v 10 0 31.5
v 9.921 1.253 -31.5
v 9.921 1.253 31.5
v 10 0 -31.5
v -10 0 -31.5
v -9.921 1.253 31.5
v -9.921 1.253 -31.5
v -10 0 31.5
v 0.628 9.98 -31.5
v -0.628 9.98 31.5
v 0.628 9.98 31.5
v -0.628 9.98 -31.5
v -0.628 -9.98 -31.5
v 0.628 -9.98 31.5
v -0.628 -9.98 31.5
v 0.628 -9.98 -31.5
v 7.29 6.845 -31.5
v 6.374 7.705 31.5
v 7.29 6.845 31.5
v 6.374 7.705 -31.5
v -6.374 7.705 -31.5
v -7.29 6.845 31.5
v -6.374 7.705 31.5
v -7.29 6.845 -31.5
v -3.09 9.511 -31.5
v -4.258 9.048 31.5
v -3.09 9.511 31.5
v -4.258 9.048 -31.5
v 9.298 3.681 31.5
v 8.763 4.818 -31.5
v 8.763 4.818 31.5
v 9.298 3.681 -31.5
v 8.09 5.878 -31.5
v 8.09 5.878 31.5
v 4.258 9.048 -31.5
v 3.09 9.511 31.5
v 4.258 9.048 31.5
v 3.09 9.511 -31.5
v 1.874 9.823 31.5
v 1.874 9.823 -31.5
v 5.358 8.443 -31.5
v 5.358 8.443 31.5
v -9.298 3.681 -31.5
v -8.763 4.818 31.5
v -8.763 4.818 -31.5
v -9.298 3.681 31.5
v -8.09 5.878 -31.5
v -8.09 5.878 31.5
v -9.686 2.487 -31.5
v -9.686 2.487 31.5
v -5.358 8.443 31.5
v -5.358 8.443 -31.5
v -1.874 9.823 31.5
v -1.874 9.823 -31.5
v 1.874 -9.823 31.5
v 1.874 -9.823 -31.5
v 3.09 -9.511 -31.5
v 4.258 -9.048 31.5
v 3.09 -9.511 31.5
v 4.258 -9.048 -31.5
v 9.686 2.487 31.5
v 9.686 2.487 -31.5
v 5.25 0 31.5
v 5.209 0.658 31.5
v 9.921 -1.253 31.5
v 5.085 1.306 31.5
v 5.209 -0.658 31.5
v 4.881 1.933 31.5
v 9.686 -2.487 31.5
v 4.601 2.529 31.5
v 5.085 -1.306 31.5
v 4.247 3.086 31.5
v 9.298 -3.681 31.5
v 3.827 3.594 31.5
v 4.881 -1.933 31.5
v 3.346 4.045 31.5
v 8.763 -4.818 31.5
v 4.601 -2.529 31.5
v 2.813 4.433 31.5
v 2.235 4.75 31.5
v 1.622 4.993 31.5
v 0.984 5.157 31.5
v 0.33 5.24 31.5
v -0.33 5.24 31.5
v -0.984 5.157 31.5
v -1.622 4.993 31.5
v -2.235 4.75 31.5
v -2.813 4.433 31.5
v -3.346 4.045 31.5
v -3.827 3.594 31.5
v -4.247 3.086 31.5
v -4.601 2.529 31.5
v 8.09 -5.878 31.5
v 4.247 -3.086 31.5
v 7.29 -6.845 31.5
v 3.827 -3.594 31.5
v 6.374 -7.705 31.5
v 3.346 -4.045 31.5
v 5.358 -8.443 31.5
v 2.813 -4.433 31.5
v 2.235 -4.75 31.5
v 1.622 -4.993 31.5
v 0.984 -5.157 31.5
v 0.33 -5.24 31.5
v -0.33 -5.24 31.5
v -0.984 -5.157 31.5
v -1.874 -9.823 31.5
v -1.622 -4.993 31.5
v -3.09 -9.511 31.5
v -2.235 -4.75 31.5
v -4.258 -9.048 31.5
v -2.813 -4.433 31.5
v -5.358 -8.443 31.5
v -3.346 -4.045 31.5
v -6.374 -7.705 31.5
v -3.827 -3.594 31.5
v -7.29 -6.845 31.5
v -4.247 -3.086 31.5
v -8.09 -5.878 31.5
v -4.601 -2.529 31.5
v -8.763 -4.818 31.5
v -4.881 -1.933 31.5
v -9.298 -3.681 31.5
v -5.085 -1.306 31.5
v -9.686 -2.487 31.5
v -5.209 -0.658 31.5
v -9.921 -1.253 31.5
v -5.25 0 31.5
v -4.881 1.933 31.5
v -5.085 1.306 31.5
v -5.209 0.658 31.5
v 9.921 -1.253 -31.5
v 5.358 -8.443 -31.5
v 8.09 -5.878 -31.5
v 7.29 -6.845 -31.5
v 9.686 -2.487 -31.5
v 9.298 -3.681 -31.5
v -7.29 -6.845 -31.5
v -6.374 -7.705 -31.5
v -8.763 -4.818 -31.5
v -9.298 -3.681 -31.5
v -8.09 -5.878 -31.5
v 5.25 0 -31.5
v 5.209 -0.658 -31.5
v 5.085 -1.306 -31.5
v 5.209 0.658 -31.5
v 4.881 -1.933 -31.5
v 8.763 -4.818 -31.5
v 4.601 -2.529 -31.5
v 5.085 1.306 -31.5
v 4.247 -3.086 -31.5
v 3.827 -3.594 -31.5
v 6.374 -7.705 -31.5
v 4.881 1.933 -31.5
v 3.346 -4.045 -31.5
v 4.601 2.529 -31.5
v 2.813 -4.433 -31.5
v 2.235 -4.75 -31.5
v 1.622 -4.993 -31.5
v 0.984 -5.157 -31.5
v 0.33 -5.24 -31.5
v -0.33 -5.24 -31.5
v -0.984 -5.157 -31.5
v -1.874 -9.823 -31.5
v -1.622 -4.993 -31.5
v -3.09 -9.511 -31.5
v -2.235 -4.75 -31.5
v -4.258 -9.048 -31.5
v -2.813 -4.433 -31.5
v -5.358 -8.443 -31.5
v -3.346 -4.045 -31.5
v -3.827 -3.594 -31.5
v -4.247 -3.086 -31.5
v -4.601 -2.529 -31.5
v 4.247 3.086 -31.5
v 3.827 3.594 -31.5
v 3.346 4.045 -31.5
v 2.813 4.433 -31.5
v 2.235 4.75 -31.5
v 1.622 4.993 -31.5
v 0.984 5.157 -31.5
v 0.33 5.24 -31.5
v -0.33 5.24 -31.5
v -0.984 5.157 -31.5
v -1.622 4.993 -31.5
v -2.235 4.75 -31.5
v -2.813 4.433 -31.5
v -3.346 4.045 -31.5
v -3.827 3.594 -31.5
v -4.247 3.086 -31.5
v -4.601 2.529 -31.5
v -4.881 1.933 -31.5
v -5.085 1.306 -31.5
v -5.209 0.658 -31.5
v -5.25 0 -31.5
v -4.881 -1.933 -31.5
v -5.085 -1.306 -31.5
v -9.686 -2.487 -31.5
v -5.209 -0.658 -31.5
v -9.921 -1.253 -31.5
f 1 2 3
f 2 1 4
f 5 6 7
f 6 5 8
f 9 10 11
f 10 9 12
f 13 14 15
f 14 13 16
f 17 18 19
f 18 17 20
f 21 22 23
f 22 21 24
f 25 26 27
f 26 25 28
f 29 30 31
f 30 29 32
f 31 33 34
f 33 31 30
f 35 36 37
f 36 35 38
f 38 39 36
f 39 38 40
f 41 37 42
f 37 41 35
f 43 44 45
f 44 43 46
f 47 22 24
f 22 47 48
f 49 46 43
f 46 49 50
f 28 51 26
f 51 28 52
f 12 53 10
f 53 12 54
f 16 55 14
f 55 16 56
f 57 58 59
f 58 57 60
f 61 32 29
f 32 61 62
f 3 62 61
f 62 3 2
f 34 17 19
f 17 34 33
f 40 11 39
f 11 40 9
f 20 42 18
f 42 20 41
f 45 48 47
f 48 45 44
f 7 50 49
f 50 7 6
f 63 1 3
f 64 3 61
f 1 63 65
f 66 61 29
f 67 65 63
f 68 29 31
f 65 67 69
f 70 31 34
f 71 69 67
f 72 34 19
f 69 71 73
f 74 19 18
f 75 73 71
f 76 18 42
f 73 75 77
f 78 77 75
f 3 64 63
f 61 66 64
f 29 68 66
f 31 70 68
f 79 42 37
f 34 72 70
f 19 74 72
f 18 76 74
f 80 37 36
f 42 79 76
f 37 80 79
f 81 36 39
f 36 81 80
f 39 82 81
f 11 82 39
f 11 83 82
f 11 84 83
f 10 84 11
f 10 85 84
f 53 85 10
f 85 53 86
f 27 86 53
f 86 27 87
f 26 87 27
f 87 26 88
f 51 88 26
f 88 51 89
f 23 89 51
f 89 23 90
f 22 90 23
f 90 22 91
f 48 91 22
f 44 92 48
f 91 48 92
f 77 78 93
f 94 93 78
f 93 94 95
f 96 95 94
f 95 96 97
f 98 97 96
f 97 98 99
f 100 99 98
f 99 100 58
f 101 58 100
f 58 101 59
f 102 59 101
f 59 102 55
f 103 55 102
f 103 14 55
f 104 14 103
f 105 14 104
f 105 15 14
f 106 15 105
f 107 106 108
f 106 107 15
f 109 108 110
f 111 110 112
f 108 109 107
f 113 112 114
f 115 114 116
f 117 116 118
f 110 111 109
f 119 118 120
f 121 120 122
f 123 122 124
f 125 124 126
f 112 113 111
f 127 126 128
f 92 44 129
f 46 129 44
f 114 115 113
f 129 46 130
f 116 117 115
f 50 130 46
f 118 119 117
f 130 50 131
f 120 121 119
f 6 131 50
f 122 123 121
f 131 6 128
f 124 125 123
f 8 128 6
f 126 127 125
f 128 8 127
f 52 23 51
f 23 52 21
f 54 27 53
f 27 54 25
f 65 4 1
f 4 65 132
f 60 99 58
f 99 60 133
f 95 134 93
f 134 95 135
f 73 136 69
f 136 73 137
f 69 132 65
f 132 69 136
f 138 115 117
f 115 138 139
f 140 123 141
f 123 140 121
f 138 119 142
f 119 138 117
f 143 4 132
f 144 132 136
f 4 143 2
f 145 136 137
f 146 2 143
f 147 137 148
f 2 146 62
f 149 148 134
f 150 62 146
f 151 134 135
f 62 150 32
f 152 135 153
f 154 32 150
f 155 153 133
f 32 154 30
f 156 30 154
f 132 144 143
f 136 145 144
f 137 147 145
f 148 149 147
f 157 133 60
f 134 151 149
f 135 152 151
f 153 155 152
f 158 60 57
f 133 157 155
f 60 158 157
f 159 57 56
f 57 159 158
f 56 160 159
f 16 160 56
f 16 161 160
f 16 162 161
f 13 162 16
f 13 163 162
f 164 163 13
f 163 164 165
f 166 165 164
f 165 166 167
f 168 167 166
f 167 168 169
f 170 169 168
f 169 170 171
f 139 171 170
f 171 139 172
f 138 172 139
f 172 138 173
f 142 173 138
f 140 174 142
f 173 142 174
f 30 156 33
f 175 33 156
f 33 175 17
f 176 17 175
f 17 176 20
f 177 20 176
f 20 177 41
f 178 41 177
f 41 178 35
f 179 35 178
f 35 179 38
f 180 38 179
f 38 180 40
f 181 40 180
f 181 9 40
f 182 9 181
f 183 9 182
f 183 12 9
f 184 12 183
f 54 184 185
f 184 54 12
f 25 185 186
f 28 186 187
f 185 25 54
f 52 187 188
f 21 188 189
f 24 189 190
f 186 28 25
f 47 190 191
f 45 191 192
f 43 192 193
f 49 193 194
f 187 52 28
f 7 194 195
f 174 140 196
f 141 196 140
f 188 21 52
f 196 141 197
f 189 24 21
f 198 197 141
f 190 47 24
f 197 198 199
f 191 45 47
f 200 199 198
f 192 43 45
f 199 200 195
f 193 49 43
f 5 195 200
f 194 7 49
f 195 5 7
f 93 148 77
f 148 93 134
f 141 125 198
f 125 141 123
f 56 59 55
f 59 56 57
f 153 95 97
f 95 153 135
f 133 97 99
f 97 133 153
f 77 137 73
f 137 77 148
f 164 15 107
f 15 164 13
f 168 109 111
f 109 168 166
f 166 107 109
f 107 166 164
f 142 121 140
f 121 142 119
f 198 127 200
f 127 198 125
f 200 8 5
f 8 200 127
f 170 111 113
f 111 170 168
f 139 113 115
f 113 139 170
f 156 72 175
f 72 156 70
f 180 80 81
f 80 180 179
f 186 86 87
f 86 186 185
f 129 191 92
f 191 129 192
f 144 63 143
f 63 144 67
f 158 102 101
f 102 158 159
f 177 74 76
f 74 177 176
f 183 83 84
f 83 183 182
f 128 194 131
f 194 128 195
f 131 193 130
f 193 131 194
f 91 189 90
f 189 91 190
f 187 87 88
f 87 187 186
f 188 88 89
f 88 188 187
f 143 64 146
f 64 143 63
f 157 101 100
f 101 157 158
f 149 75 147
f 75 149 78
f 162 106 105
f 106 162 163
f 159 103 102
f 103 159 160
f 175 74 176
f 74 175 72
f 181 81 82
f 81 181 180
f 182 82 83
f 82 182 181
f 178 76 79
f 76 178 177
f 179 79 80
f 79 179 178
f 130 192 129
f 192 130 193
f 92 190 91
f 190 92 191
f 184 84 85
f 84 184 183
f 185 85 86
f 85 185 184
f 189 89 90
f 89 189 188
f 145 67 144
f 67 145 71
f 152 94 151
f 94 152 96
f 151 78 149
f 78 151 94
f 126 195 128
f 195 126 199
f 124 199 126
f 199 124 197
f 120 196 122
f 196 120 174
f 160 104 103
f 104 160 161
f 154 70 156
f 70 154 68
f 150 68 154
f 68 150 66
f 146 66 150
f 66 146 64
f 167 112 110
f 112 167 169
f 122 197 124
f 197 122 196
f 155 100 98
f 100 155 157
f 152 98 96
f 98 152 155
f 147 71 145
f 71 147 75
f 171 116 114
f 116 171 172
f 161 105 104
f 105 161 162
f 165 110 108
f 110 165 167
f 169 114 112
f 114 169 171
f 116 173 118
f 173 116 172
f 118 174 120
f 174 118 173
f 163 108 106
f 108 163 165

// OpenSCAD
$fn = 50;


difference() {
	union() {
		translate(v = [0, 0, -31.5000000000]) {
			cylinder(h = 63, r = 10.0000000000);
		}
	}
	union() {
		translate(v = [0, 0, -100.0000000000]) {
			cylinder(h = 200, r = 5.2500000000);
		}
	}
}
